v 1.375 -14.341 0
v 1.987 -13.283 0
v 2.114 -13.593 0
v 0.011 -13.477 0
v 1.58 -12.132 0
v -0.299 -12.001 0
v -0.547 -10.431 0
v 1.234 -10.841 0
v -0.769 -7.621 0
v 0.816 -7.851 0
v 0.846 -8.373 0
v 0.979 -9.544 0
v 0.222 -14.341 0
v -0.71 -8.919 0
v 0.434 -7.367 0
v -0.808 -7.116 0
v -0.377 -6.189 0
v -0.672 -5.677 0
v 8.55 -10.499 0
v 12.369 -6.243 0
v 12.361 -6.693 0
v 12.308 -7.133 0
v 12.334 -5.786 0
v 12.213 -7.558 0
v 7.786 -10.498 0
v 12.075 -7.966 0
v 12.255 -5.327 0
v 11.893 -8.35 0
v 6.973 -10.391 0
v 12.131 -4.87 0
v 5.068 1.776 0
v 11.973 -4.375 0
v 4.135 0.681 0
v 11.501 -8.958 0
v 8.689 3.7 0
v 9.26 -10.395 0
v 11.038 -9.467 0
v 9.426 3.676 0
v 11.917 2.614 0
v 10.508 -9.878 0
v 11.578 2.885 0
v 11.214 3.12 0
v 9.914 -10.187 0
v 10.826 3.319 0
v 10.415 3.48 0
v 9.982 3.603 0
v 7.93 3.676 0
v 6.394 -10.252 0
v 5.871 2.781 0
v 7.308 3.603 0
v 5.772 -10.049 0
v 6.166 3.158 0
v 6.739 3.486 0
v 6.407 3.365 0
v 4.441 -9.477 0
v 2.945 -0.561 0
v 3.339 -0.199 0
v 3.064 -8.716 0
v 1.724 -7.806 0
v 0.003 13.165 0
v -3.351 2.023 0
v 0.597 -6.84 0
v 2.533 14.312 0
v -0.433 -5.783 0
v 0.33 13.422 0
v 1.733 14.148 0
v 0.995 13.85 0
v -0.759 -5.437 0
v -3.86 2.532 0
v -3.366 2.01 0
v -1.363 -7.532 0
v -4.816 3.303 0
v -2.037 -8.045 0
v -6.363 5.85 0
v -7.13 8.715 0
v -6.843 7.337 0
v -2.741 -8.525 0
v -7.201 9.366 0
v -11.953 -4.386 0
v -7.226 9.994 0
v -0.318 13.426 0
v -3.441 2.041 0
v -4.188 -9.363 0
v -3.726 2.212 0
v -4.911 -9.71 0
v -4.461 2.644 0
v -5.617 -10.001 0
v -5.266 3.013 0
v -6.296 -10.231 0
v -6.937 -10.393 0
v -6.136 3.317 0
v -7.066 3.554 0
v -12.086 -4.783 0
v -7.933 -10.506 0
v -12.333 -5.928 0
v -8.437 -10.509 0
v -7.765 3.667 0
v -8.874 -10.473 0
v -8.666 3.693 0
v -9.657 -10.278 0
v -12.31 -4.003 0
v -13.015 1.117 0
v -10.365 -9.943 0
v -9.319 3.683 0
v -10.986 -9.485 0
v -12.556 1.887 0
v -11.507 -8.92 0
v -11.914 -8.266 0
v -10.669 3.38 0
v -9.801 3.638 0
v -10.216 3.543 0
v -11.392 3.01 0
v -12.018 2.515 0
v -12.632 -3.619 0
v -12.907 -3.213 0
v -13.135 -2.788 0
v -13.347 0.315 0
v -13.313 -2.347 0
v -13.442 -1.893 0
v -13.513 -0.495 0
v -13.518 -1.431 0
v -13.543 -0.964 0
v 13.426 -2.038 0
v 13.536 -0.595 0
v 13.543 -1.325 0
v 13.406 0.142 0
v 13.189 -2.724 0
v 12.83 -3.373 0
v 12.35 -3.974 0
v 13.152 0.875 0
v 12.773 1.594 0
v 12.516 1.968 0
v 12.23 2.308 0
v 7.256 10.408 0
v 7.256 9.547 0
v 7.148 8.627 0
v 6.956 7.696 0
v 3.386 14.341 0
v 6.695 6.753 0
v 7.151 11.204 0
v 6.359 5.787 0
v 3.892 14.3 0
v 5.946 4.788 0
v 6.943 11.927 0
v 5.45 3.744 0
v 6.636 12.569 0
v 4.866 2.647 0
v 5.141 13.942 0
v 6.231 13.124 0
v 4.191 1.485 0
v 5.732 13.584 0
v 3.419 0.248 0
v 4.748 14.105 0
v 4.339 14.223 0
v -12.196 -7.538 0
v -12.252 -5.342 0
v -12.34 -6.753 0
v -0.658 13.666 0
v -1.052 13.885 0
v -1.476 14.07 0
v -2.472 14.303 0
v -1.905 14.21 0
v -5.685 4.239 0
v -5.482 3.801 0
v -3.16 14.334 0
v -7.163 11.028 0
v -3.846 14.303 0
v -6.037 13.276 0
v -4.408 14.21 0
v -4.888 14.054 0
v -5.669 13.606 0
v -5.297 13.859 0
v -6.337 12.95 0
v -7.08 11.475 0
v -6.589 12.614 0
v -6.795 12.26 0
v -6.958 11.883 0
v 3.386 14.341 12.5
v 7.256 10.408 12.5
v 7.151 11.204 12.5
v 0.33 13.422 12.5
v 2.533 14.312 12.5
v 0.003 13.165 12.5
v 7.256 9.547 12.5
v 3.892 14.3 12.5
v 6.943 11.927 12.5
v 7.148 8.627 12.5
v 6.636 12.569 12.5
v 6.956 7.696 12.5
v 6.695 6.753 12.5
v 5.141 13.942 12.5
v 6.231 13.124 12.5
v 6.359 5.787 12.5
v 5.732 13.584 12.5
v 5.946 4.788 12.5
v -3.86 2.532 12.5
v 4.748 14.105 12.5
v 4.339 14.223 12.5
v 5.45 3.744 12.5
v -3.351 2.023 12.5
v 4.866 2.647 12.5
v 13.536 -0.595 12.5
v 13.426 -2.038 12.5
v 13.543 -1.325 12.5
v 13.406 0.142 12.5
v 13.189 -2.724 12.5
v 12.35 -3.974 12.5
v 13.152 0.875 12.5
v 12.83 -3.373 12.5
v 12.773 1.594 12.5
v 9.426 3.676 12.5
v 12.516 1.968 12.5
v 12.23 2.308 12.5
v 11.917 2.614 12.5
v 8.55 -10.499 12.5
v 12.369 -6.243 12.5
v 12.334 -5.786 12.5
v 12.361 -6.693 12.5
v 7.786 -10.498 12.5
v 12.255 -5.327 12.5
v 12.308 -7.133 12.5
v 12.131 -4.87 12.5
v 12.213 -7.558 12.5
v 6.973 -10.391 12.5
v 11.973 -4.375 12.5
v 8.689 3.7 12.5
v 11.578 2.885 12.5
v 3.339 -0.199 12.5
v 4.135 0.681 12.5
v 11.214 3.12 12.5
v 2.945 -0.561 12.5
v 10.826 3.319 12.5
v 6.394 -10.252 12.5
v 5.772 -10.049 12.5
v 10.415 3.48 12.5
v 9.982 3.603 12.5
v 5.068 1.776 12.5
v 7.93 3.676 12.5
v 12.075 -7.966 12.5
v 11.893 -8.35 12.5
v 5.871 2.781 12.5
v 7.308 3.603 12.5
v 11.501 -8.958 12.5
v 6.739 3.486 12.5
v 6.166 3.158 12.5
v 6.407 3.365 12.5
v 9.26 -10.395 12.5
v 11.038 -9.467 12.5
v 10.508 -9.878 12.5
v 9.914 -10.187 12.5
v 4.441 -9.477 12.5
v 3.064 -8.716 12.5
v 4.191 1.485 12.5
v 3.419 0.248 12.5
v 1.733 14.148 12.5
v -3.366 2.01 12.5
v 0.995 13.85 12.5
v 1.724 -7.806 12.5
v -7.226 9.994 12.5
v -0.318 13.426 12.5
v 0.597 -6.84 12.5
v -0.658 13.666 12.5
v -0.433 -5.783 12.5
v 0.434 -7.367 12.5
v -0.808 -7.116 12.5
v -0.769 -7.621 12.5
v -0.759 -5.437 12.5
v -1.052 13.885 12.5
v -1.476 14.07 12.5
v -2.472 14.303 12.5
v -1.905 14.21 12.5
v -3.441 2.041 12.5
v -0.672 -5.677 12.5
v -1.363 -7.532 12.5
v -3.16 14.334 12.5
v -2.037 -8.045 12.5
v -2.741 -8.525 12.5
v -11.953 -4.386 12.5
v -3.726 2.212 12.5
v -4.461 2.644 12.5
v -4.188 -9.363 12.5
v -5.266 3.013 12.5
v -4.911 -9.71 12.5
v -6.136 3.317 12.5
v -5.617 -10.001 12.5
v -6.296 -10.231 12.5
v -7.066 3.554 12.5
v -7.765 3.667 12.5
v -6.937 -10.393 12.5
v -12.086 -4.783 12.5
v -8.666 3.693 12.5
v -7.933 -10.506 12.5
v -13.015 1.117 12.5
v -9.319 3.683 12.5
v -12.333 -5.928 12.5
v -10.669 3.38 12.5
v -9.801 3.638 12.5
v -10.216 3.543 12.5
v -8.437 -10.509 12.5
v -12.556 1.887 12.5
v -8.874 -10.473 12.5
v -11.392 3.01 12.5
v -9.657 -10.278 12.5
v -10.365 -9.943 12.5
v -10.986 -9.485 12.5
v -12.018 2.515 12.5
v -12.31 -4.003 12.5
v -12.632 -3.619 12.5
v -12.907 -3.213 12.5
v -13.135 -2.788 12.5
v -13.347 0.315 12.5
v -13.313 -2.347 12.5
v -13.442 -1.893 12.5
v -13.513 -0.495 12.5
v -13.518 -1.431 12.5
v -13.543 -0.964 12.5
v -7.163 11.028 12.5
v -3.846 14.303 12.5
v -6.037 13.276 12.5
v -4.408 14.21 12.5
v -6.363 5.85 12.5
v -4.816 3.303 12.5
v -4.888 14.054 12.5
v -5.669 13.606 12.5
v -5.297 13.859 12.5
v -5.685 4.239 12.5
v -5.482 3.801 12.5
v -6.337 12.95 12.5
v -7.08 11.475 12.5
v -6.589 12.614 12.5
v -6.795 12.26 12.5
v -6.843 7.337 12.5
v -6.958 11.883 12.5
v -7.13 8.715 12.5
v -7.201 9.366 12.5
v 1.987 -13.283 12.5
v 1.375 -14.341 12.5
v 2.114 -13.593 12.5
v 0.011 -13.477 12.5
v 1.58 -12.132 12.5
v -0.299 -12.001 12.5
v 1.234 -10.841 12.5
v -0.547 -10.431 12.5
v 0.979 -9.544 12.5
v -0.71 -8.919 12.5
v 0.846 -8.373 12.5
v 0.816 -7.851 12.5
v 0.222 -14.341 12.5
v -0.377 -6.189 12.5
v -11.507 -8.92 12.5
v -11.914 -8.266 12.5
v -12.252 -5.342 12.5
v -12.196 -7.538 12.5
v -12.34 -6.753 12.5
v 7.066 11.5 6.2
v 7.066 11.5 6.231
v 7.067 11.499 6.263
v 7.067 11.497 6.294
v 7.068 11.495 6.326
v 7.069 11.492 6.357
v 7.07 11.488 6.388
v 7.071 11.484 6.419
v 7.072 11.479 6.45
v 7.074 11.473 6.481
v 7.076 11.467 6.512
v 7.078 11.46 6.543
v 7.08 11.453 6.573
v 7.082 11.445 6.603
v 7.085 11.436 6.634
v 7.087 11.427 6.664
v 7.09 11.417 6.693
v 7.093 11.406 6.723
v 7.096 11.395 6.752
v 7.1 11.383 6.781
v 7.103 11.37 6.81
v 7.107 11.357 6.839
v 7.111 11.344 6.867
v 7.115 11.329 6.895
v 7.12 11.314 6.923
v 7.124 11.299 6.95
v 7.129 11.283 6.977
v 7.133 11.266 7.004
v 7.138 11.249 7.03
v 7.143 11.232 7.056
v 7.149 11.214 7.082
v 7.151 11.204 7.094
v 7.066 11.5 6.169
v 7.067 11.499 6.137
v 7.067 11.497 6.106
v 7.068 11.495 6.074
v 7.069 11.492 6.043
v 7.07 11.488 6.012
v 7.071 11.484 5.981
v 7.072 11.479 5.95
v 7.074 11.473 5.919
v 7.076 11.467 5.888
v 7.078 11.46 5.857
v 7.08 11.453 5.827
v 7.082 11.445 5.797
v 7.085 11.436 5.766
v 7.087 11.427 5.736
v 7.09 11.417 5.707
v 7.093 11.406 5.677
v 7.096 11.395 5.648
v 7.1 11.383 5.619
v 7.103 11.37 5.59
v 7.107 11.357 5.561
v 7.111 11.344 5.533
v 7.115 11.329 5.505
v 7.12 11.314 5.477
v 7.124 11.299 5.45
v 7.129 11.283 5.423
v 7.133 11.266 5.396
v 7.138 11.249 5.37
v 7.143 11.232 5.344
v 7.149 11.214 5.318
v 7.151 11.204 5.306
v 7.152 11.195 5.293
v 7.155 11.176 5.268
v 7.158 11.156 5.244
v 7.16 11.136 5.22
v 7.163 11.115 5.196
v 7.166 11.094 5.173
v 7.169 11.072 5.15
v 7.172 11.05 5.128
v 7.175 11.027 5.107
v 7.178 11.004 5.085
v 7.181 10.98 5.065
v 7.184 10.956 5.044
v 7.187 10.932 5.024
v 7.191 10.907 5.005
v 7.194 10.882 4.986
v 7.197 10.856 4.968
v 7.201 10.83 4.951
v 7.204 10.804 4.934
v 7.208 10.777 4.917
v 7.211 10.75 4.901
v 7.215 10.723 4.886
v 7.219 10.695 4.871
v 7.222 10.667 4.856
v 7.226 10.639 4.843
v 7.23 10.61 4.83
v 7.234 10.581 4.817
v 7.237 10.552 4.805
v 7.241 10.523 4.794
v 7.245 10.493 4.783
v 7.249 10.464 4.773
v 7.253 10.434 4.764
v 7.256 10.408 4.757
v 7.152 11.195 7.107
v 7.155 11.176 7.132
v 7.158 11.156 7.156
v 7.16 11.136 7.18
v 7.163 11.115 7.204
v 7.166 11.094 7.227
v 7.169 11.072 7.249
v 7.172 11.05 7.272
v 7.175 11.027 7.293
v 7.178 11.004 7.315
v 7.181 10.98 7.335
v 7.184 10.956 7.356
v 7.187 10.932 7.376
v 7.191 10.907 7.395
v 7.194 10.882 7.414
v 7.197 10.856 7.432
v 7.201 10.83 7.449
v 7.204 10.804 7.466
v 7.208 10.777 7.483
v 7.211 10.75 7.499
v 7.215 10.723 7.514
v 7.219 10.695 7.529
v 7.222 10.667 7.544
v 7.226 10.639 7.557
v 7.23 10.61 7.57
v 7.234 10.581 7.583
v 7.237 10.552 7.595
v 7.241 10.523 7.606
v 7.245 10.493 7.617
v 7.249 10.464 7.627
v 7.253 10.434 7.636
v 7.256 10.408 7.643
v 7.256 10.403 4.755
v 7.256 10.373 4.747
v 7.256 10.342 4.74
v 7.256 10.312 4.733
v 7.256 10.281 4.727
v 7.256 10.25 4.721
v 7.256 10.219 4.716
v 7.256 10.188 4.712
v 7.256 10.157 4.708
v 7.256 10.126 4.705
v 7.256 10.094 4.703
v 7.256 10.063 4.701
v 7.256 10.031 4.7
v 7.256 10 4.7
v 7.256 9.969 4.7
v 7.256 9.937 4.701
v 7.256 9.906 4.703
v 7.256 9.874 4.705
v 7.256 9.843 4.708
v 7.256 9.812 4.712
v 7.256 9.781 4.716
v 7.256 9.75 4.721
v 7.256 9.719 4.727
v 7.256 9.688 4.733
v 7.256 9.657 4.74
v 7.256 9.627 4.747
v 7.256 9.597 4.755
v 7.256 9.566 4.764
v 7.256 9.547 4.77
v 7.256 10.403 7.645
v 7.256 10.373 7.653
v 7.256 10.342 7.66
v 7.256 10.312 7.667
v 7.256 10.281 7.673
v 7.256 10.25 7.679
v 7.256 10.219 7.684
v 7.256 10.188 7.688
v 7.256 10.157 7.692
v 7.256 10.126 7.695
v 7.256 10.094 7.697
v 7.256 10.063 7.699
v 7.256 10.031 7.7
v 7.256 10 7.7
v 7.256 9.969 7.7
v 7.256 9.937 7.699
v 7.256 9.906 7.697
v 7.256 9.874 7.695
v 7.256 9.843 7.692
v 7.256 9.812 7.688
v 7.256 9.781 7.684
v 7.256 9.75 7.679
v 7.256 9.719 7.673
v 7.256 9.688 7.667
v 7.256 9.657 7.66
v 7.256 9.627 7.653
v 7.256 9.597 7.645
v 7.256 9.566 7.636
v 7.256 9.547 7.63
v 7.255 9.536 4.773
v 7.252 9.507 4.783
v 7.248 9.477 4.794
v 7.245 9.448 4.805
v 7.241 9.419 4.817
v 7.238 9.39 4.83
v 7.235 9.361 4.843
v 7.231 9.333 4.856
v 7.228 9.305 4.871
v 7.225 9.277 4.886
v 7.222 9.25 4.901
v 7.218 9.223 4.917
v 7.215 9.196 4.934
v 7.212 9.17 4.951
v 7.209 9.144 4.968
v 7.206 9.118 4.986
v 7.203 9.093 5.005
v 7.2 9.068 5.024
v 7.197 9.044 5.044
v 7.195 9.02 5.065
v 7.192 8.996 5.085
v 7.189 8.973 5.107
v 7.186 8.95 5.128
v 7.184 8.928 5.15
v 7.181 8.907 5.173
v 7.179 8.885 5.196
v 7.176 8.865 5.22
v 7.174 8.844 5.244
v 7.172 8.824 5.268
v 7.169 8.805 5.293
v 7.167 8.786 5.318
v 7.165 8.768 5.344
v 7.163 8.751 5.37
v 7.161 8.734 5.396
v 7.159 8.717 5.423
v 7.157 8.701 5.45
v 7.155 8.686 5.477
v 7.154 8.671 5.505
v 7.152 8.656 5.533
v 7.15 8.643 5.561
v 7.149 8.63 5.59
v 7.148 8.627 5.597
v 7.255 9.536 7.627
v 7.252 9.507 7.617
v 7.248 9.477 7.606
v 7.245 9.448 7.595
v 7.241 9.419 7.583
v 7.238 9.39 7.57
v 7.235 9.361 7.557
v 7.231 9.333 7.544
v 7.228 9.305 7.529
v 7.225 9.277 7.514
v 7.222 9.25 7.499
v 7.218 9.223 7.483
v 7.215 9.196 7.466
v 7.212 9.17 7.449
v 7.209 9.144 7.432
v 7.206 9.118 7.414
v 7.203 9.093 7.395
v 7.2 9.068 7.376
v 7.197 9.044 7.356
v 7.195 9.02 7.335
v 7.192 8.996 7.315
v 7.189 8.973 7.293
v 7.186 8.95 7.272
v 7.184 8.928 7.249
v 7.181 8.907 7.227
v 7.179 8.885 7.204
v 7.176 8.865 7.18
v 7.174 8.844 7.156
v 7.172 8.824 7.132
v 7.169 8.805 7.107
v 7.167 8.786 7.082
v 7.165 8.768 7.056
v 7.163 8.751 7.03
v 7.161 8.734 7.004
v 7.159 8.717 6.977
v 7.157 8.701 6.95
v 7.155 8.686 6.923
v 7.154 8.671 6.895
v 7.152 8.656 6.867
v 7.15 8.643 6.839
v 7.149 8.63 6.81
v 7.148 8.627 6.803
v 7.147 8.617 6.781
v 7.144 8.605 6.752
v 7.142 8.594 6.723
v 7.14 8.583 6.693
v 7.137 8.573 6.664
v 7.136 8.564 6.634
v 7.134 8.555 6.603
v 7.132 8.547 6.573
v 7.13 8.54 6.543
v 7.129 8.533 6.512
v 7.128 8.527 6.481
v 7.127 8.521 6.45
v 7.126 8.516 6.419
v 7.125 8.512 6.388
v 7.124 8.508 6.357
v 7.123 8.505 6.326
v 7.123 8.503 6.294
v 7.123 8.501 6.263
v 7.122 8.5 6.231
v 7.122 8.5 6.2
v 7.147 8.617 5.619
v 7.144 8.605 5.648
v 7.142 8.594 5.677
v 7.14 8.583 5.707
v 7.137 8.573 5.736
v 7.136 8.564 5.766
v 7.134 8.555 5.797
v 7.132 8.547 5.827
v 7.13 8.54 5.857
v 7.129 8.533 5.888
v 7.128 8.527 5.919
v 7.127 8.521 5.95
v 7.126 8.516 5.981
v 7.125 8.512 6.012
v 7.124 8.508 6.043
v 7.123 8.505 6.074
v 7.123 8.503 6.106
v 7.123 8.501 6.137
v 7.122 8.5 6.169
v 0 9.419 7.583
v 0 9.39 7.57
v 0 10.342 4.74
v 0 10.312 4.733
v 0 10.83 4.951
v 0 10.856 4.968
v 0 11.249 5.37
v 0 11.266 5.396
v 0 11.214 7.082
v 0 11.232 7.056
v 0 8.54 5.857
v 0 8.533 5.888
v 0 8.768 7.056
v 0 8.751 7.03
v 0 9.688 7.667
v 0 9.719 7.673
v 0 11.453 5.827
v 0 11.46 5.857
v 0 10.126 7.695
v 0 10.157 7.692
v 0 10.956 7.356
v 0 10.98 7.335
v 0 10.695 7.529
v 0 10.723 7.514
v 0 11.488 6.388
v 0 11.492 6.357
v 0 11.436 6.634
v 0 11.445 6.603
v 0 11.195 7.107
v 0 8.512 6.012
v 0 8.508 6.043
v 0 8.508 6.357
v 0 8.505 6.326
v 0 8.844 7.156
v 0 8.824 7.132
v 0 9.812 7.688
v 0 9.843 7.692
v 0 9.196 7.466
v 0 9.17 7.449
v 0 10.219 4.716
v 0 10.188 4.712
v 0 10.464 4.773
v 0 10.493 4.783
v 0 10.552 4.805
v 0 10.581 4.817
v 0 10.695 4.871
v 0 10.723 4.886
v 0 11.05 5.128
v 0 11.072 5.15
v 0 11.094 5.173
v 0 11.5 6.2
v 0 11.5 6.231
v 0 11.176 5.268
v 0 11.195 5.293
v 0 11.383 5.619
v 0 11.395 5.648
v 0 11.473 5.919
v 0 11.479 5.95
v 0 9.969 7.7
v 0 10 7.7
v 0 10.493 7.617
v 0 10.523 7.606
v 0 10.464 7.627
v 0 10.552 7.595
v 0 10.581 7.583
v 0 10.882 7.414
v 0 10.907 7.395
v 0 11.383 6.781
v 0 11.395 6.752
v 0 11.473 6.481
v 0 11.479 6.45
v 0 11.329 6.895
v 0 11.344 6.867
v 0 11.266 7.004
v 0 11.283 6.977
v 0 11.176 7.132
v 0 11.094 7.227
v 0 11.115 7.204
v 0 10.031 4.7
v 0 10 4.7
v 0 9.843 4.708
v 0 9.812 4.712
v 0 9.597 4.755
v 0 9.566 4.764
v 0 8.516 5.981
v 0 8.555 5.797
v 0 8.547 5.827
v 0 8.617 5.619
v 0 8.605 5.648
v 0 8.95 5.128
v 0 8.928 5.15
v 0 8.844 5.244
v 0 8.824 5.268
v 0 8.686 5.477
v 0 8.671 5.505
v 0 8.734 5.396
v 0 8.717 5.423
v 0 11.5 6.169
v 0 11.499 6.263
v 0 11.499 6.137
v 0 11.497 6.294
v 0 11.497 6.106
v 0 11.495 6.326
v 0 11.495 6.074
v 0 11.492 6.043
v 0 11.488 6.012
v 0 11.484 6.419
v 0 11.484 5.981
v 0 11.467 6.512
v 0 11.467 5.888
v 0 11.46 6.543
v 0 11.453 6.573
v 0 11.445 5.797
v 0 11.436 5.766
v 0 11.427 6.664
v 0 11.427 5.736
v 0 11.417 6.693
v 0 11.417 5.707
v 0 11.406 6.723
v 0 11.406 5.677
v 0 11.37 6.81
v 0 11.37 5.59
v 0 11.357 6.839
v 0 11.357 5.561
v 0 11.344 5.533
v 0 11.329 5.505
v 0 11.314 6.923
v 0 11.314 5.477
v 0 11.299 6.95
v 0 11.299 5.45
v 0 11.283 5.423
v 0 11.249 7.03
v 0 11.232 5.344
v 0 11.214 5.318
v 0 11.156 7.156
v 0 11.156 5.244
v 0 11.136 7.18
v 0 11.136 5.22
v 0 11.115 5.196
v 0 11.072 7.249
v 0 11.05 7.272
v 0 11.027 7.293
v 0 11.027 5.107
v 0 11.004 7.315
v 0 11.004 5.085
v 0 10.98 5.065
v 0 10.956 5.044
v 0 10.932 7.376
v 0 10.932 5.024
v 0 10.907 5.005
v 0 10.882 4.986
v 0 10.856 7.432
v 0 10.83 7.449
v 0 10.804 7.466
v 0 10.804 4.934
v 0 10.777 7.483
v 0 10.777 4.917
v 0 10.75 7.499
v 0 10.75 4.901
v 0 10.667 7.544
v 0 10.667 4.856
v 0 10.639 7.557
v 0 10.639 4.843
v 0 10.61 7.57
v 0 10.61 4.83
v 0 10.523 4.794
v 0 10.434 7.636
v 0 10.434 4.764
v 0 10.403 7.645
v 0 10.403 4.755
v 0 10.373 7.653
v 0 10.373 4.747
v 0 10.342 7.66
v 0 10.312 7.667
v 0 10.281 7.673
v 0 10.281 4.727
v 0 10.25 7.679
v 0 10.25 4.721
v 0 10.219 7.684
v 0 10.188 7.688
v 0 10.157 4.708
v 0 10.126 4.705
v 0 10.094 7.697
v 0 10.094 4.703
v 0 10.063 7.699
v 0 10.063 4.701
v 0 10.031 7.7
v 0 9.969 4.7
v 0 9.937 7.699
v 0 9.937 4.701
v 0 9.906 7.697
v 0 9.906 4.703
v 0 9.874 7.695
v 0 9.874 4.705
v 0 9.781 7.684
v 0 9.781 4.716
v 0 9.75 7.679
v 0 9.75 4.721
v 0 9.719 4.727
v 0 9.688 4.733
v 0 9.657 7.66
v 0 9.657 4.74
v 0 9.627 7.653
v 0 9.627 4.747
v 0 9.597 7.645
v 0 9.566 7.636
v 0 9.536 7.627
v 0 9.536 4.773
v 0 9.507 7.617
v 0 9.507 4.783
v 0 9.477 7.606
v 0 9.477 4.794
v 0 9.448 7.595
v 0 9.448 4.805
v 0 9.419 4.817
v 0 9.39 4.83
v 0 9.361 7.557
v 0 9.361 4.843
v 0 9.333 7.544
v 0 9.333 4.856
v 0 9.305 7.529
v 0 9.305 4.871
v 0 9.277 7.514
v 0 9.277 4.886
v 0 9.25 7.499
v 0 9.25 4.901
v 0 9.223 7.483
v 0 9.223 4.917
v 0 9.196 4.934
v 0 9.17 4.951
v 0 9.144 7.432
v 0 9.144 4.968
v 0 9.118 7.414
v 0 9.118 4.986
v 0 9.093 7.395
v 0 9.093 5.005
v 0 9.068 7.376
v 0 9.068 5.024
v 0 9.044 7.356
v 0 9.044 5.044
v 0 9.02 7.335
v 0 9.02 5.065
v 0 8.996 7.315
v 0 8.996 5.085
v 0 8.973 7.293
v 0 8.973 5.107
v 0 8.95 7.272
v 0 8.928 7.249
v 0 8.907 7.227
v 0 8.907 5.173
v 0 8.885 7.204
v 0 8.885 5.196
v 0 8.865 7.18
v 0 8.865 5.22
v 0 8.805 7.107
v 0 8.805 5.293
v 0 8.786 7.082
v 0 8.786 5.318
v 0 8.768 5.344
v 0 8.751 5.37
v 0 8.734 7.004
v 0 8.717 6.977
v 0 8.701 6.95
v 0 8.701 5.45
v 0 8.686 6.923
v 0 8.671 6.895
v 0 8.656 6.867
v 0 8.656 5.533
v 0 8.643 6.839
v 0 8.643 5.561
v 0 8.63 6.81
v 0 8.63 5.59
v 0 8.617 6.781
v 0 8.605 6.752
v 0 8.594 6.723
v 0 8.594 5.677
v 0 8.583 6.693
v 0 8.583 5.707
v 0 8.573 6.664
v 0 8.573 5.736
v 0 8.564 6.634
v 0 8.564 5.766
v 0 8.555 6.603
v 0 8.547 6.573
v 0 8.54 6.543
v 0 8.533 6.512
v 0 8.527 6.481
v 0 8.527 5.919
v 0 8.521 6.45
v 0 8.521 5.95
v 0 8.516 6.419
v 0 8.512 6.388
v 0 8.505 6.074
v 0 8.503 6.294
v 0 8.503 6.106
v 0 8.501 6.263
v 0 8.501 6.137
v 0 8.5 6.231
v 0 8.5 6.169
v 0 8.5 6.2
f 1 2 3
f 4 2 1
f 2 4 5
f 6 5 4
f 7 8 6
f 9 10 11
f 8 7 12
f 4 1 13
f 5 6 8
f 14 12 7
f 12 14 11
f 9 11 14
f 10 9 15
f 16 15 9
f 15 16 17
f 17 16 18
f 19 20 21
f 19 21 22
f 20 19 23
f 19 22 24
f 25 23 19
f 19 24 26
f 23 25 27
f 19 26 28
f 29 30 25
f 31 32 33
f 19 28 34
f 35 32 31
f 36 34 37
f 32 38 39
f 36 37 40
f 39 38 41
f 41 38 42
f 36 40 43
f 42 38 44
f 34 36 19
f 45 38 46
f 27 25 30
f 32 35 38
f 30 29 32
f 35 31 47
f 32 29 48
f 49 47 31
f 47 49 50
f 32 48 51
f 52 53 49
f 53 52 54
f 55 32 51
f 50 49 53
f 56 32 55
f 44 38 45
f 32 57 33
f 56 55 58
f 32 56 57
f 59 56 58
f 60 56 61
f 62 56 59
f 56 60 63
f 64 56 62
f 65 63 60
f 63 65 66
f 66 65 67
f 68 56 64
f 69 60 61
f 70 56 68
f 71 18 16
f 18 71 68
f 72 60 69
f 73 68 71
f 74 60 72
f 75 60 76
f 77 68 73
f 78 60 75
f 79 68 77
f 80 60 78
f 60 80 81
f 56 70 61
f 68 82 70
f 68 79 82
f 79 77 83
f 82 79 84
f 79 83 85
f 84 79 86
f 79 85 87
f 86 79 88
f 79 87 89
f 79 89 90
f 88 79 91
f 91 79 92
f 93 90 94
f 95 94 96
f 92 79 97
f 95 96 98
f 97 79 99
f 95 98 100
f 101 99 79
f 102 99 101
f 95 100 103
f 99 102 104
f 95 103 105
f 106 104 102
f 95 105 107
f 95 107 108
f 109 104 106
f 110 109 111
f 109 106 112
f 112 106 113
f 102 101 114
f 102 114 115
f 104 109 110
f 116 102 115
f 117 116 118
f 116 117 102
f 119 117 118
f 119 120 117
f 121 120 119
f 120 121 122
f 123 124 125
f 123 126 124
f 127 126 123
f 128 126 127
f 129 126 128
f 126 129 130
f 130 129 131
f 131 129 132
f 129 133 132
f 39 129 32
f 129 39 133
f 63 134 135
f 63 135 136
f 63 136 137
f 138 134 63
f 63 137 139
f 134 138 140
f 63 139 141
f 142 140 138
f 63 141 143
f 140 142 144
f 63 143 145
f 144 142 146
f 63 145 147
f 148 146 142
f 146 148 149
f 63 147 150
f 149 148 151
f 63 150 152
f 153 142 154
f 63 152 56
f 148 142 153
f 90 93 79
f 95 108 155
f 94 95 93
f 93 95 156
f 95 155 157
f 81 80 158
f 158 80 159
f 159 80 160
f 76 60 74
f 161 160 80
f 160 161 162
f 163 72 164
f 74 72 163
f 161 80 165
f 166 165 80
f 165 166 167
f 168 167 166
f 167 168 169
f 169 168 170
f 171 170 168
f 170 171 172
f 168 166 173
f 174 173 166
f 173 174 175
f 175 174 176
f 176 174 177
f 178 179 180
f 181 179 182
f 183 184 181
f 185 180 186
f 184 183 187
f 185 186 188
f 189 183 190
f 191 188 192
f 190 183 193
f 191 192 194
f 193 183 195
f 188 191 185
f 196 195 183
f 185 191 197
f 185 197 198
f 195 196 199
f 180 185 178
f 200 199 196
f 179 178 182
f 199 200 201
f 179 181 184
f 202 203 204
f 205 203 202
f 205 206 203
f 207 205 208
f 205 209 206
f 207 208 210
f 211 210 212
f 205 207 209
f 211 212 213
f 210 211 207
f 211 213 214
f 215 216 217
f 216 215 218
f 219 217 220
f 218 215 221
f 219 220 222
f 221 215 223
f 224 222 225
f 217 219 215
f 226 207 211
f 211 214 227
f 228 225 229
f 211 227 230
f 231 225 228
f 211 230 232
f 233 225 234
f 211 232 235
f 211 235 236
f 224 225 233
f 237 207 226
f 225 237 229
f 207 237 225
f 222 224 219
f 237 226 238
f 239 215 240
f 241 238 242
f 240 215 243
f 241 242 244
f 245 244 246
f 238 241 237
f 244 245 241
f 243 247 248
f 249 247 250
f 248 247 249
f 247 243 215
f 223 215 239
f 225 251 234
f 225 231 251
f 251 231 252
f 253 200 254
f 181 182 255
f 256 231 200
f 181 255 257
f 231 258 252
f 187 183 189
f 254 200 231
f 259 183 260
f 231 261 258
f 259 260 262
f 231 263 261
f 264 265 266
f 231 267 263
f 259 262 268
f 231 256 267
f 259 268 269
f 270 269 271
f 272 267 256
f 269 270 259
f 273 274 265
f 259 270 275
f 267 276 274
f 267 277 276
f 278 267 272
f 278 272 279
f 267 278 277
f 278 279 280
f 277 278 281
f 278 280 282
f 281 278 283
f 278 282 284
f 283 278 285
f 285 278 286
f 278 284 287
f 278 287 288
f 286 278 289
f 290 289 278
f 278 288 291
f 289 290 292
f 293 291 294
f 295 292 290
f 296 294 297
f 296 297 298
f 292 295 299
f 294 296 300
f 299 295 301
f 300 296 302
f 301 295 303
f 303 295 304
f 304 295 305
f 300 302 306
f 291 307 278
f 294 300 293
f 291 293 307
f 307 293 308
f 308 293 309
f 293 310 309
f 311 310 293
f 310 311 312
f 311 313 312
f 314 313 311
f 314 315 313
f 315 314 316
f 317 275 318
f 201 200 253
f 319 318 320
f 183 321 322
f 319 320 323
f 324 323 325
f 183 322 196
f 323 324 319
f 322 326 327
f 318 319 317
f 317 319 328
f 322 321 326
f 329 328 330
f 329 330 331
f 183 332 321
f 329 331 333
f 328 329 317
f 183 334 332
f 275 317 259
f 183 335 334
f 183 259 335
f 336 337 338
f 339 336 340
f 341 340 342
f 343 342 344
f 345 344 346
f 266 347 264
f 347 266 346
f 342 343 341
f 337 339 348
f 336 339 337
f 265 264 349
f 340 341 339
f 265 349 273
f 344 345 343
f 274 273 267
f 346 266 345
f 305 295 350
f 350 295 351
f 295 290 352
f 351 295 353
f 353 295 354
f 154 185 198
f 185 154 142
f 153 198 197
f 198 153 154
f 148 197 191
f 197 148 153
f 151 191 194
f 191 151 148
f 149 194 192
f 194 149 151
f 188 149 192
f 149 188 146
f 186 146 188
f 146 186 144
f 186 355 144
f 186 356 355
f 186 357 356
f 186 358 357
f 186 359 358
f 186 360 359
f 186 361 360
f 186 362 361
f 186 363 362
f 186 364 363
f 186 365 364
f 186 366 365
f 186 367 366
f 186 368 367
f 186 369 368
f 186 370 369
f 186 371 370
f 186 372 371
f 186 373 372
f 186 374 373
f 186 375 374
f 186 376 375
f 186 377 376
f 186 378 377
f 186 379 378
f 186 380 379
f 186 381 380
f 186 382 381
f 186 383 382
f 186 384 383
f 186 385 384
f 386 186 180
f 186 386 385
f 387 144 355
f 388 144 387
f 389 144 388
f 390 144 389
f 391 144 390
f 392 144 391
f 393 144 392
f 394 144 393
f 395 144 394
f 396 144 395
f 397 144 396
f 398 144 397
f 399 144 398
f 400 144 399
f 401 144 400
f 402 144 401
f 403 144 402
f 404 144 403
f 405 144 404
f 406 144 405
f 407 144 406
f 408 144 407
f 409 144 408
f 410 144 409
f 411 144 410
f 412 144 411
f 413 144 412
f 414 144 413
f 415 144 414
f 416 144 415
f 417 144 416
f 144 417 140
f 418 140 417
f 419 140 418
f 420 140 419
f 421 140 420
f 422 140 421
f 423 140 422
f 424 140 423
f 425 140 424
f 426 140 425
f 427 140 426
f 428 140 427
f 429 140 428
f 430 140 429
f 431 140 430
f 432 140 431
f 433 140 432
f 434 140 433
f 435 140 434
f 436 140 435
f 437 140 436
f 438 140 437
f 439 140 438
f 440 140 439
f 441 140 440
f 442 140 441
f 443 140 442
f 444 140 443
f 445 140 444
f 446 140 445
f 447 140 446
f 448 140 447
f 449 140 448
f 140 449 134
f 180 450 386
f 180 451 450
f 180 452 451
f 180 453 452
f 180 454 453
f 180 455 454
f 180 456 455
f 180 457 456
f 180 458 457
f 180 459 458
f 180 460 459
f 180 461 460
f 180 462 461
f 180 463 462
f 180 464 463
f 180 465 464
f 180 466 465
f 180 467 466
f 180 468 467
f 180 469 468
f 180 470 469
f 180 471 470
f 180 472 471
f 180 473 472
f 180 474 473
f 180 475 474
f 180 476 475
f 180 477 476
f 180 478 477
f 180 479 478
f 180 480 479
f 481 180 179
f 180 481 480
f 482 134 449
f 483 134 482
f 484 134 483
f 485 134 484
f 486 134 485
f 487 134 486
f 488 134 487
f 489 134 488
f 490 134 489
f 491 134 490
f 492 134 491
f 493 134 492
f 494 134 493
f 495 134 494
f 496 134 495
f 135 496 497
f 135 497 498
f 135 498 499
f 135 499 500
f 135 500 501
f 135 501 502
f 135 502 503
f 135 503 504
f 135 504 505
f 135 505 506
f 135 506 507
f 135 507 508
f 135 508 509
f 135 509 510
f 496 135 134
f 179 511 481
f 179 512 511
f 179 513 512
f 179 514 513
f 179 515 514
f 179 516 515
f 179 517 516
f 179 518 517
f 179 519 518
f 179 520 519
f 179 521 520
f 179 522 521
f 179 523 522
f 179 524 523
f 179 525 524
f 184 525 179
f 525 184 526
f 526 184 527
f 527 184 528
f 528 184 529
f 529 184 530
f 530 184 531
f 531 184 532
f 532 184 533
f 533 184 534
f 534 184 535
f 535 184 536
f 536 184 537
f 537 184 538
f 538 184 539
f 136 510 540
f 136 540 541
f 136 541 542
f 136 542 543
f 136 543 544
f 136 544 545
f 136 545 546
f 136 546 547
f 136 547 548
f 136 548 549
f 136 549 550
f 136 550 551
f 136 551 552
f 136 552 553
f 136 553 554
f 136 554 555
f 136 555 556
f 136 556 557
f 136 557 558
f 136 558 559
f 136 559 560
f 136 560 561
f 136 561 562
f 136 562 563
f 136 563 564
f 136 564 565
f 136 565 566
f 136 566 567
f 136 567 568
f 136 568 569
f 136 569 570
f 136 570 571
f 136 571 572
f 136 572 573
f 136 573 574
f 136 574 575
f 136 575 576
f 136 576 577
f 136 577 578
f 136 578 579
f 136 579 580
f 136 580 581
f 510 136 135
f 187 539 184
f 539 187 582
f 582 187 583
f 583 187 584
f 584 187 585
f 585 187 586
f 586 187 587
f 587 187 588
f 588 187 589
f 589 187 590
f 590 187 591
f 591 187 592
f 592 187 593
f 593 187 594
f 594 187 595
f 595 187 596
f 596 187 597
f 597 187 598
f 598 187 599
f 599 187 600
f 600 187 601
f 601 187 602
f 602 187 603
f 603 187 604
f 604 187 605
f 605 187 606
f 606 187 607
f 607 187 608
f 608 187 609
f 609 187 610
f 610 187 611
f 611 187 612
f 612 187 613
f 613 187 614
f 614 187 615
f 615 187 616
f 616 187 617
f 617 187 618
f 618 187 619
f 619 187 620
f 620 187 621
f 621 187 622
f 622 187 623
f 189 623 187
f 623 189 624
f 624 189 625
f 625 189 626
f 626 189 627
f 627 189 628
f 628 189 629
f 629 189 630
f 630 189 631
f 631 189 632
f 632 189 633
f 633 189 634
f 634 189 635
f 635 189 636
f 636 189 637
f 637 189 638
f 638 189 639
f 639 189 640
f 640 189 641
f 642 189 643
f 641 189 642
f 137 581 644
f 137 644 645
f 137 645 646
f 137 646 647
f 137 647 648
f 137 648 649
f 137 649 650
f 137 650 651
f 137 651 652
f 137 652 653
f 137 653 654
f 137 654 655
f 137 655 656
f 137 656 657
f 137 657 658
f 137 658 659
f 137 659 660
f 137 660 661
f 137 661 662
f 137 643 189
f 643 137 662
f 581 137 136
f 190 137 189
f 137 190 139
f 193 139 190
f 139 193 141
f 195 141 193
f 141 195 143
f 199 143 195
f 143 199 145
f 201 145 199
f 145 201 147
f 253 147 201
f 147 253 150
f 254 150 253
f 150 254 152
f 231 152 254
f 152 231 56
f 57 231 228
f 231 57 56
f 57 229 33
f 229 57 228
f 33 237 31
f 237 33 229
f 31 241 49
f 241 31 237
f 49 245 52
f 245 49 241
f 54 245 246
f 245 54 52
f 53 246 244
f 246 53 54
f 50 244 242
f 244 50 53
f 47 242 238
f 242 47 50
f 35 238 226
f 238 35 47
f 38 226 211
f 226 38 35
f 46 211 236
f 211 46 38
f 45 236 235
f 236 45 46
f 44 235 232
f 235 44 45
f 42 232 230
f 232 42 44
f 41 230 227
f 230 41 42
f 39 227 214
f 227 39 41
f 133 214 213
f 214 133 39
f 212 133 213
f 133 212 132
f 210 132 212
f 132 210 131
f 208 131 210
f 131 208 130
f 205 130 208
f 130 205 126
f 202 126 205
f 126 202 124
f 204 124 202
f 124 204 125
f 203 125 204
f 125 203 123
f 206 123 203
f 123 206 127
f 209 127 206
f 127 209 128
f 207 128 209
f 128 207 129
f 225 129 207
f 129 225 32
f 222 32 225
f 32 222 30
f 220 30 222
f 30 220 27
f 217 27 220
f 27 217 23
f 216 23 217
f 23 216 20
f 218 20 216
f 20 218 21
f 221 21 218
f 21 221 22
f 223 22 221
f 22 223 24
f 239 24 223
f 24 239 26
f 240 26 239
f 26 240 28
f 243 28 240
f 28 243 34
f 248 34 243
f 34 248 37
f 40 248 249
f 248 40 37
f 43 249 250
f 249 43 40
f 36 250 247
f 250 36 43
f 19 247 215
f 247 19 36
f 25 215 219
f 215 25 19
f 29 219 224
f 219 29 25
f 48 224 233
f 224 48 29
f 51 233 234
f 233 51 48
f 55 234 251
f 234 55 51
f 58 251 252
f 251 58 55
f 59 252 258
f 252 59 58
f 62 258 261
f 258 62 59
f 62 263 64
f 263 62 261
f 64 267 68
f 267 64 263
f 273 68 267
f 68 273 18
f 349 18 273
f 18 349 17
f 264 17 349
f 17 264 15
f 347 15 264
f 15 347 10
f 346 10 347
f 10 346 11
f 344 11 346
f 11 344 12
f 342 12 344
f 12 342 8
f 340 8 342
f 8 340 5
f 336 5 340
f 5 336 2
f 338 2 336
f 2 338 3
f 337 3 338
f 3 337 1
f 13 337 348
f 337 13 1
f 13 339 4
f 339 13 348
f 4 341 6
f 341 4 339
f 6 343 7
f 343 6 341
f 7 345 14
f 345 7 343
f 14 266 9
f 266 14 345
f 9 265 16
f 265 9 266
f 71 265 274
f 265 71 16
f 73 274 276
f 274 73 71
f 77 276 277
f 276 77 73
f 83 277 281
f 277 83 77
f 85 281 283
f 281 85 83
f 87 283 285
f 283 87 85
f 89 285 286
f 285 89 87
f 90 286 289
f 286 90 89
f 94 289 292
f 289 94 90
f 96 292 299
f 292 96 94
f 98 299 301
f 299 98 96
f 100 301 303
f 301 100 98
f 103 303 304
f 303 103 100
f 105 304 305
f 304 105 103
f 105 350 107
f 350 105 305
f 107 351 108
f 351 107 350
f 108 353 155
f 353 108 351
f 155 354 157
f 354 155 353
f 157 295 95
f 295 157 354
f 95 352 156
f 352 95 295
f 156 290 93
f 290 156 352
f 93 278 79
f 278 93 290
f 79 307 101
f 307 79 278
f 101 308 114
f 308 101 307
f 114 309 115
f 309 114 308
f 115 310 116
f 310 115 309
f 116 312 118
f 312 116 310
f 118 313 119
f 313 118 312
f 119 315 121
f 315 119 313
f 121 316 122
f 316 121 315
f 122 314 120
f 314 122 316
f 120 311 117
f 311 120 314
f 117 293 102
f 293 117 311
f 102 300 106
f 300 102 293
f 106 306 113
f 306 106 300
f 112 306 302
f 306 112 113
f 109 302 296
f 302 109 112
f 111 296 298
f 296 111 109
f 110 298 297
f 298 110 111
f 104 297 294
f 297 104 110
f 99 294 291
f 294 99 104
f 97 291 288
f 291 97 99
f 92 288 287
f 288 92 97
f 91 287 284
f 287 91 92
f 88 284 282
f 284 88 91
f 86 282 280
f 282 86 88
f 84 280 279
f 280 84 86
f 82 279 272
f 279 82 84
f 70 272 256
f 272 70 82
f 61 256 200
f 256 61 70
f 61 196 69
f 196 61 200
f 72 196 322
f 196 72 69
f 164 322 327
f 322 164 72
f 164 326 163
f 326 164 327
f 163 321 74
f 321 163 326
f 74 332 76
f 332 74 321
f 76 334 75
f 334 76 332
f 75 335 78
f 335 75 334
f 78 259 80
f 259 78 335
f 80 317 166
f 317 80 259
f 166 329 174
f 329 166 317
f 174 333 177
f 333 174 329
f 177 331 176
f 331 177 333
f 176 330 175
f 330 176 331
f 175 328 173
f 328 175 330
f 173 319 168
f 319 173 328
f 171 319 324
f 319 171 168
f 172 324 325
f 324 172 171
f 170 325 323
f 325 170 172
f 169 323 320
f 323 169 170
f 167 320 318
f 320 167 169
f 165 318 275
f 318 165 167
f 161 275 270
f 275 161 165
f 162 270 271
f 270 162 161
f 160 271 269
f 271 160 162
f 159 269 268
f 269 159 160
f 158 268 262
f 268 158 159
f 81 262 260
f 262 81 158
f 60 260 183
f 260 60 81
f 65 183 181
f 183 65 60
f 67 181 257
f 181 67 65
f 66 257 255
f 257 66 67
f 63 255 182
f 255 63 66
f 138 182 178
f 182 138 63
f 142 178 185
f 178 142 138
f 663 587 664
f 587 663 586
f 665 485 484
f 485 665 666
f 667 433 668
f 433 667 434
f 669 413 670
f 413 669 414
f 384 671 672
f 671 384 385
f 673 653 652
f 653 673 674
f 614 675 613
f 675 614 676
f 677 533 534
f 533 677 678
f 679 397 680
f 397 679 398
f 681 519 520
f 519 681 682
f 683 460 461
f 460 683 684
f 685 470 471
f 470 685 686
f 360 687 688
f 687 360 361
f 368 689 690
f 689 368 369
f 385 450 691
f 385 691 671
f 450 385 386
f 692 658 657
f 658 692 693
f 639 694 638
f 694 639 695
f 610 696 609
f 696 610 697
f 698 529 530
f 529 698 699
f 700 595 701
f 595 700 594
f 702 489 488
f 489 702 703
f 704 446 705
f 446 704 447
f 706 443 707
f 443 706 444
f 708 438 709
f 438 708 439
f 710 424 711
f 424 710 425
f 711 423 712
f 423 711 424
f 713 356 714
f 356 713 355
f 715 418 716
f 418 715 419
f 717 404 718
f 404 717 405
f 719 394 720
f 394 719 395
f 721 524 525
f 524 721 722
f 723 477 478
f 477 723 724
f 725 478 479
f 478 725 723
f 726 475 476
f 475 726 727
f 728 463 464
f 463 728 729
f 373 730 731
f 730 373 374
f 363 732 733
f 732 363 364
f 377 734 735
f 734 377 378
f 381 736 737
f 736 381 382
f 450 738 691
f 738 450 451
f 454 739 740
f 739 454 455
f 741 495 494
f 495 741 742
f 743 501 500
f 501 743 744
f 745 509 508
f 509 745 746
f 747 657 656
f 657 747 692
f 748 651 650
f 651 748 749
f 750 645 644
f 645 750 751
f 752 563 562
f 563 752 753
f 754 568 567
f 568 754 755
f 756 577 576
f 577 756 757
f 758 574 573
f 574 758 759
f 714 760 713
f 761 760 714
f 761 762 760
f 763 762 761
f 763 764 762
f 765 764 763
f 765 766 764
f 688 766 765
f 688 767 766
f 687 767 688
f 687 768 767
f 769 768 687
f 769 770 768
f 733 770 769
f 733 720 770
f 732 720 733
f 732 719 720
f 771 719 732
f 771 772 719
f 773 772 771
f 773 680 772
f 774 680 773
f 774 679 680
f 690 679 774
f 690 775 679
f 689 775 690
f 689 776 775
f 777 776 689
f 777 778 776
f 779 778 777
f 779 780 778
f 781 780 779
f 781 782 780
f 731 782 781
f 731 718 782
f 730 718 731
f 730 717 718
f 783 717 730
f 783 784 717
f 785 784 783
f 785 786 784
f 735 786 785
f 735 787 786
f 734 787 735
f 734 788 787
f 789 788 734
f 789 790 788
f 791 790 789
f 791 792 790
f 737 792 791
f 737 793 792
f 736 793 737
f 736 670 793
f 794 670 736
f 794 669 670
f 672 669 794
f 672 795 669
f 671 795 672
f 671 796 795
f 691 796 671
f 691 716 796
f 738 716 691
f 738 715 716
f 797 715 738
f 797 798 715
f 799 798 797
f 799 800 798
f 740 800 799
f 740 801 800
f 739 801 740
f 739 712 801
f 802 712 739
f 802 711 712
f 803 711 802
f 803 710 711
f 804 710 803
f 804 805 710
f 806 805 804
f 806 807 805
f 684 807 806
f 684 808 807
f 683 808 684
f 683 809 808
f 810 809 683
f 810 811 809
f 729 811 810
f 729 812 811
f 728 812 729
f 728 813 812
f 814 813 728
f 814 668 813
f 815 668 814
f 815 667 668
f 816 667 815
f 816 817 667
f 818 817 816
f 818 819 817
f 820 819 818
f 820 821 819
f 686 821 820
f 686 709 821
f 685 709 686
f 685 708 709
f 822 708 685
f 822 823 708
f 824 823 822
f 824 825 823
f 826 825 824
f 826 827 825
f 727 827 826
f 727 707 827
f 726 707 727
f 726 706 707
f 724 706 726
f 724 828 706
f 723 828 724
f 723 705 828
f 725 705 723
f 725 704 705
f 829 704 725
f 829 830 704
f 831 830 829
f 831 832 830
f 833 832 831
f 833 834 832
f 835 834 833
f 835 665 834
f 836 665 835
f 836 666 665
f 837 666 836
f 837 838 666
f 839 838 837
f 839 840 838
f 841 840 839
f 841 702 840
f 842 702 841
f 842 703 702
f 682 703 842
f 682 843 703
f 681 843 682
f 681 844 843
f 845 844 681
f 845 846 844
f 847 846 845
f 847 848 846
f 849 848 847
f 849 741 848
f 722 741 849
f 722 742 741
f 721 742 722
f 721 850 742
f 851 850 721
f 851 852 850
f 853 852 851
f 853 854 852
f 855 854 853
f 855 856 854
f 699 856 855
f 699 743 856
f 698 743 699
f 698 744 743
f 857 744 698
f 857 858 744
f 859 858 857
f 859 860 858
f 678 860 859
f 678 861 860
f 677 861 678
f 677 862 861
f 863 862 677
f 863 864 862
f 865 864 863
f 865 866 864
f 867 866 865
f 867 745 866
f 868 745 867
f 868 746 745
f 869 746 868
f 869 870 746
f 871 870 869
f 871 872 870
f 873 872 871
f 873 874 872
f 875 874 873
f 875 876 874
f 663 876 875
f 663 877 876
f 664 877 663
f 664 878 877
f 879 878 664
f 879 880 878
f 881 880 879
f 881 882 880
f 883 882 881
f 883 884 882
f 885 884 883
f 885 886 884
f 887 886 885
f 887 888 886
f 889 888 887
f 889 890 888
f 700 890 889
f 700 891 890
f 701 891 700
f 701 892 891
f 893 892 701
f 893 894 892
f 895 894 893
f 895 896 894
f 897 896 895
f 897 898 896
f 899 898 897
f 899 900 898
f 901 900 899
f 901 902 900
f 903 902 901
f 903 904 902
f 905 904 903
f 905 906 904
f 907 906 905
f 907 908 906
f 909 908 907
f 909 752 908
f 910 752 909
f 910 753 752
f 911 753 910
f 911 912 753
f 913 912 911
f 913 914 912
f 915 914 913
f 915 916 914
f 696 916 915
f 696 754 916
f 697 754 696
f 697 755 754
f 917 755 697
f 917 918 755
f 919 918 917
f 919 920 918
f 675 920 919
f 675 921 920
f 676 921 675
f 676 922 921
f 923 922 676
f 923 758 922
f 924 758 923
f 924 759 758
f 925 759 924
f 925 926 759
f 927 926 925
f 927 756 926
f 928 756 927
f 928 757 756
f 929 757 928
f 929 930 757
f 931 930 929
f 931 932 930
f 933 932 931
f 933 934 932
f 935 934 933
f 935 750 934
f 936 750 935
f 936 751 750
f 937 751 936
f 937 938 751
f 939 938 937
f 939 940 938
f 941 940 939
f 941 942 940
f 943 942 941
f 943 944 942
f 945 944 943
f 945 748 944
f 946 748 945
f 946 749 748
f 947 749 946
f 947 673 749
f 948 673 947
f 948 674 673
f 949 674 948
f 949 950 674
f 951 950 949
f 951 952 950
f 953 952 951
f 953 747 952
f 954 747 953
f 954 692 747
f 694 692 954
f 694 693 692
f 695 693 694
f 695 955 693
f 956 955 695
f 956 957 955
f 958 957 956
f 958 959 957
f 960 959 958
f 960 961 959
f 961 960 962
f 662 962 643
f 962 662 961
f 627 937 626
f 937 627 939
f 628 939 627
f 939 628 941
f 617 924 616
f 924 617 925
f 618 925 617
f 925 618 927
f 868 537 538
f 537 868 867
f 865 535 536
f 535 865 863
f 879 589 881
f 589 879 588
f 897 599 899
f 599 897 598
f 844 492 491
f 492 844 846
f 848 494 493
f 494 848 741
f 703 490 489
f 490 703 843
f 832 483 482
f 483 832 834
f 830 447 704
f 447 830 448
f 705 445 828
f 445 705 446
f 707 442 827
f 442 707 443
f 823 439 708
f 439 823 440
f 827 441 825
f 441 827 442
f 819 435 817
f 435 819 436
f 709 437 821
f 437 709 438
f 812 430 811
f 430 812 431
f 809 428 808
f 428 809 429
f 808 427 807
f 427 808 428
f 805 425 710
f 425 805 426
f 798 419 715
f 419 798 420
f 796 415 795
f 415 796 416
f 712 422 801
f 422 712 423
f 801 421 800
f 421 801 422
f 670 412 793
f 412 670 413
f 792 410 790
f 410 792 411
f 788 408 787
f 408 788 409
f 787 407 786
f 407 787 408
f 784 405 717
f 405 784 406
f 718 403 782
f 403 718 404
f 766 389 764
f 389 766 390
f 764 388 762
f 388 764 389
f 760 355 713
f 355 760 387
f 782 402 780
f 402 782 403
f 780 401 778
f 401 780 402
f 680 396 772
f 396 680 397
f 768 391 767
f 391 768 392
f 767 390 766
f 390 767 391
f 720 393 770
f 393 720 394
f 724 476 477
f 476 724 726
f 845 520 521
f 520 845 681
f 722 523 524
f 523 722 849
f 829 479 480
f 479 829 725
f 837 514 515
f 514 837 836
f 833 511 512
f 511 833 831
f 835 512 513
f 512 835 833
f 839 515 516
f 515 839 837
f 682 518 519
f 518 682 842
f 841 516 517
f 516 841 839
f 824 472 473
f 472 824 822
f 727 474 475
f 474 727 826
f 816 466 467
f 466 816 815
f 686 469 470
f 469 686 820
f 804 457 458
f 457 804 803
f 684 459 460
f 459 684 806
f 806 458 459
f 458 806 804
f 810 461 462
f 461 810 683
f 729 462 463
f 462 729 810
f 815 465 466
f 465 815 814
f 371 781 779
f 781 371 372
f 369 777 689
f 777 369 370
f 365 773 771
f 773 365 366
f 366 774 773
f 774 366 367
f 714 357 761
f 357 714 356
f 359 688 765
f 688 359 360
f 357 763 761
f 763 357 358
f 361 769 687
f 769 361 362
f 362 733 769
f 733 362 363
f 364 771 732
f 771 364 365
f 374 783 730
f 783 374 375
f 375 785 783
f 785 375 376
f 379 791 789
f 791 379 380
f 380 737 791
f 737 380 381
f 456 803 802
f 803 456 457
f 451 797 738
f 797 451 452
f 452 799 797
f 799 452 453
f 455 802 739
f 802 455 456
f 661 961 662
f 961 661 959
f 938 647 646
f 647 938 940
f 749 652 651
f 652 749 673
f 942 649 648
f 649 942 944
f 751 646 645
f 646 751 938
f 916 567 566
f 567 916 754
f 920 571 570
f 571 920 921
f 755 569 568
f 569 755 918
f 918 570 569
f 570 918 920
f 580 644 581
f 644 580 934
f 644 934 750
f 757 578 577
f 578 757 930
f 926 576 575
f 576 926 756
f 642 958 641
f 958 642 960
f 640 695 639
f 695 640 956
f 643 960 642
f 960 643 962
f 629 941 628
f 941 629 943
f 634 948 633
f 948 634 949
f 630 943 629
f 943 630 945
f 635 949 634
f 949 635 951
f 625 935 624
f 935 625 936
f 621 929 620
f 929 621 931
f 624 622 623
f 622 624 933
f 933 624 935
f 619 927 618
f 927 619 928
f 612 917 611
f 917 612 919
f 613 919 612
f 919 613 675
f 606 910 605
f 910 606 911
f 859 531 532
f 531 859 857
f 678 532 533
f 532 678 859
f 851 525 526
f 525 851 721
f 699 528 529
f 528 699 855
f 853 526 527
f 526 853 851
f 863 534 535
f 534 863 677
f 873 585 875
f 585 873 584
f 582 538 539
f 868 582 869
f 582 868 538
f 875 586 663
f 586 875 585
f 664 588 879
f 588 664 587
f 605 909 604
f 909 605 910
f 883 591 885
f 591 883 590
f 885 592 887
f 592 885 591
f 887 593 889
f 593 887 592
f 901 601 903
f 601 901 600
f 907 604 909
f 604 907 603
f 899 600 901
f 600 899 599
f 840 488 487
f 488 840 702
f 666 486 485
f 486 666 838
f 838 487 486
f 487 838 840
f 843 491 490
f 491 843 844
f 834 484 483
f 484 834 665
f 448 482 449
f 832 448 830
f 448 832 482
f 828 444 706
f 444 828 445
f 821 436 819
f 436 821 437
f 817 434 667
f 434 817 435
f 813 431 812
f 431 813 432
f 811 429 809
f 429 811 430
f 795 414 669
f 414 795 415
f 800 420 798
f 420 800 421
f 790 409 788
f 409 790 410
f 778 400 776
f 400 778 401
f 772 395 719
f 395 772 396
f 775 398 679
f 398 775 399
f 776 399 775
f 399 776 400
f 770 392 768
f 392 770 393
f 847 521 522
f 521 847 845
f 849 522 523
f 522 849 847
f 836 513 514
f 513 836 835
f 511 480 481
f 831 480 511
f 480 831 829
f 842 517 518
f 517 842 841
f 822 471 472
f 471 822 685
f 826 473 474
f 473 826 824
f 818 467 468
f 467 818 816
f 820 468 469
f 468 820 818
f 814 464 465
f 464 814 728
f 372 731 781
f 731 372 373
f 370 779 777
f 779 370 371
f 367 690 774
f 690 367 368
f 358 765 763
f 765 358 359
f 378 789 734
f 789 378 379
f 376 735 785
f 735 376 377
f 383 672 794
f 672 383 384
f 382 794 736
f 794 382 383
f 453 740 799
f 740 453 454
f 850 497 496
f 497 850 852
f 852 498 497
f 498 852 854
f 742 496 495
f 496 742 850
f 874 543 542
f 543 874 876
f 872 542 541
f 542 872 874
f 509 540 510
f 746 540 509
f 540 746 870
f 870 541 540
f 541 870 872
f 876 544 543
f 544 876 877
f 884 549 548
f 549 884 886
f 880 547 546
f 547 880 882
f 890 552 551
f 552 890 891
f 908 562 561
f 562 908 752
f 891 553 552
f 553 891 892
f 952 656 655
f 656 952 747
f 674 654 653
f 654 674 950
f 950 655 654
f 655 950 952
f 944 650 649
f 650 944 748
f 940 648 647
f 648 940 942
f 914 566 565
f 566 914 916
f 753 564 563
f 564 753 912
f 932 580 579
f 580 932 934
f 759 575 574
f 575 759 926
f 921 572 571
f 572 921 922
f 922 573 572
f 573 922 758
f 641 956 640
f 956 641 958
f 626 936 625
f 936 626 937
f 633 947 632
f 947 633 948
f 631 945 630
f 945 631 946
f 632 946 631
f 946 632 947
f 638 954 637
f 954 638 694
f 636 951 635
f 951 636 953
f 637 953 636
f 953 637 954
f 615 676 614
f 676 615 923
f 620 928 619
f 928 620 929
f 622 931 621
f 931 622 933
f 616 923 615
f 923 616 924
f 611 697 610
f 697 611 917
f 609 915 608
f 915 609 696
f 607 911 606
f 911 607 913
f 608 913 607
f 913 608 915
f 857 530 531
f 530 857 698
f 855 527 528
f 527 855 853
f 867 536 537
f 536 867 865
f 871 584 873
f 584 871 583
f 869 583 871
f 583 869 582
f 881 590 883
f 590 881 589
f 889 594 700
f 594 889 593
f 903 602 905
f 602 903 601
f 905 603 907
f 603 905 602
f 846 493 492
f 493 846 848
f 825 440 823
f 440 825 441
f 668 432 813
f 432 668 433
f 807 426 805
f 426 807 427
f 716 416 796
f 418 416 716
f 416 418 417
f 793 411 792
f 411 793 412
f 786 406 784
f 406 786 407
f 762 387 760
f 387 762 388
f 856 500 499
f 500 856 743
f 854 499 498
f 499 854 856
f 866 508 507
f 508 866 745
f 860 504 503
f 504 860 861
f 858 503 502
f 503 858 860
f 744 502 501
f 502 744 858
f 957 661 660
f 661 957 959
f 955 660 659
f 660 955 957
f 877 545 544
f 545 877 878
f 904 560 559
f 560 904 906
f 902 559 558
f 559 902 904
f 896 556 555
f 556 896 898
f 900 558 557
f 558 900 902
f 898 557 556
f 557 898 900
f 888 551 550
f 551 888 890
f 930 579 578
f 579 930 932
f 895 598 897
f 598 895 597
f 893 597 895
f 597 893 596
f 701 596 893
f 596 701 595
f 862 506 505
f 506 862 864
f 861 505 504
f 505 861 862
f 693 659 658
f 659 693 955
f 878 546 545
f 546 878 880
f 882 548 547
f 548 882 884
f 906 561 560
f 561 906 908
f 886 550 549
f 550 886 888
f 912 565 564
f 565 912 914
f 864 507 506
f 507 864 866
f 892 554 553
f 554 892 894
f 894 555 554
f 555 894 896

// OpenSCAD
// Module names are of the form poly_<inkscape-path-id>().
// As a result you can associate a polygon in this OpenSCAD program with the
//  corresponding SVG element in the Inkscape document by looking for 
//  the XML element with the attribute id="inkscape-path-id".

// Paths have their own variables so they can be imported and used 
//  in polygon(points) structures in other programs.
// The NN_points is the list of all polygon XY vertices. 
// There may be an NN_paths variable as well. If it exists then it 
//  defines the nested paths. Both must be used in the 
//  polygon(points, paths) variant of the command.

profile_scale = 25.4/90; //made in inkscape in mm

// helper functions to determine the X,Y dimensions of the profiles
function min_x(shape_points) = min([ for (x = shape_points) min(x[0])]);
function max_x(shape_points) = max([ for (x = shape_points) max(x[0])]);
function min_y(shape_points) = min([ for (x = shape_points) min(x[1])]);
function max_y(shape_points) = max([ for (x = shape_points) max(x[1])]);

height = 5;
width = 1.0;


path3748_0_points = [[0.077872,95.503570],[-2.122076,85.049308],[-3.873795,73.919759],[-5.031635,63.208250],[-5.449948,54.008110],[-5.724268,50.431320],[-9.656184,53.377010],[-14.437322,57.011760],[-19.421141,60.413117],[-29.680960,66.353541],[-34.799027,68.811553],[-39.803911,70.874061],[-44.616645,72.500536],[-49.158263,73.650450],[-56.220931,74.455018],[-59.790633,74.474729],[-62.884265,74.218630],[-68.434658,72.837341],[-73.454553,70.464186],[-77.854039,67.217291],[-81.543207,63.214781],[-84.432147,58.574784],[-86.430948,53.415424],[-87.449700,47.854828],[-87.398494,42.011120],[-86.823148,37.857356],[-85.650612,33.894190],[-84.708009,31.080750],[-87.232812,28.366280],[-89.515706,25.648534],[-91.467909,22.770045],[-93.080933,19.755555],[-94.346291,16.629805],[-95.255495,13.417535],[-95.800054,10.143485],[-95.971483,6.832397],[-95.761291,3.509010],[-94.583483,-2.234581],[-92.233186,-7.915150],[-88.983095,-13.371513],[-85.168486,-17.824042],[-80.728933,-21.331010],[-75.604009,-23.950688],[-72.400324,-25.106059],[-69.458433,-25.784388],[-66.041134,-26.101019],[-61.411223,-26.171298],[-55.026728,-25.987217],[-50.072660,-25.184653],[-43.482440,-23.504344],[-37.318628,-21.350890],[-31.615068,-18.737875],[-26.405606,-15.678882],[-24.386596,-14.464297],[-23.851197,-14.241871],[-23.748002,-14.334757],[-27.354107,-17.943350],[-34.127160,-23.405029],[-38.847101,-26.934642],[-40.288737,-30.043616],[-45.089037,-41.454261],[-48.493116,-51.995923],[-50.524642,-61.756987],[-51.033094,-66.372417],[-51.207282,-70.825842],[-50.763032,-78.153720],[-50.169859,-81.316552],[-49.305603,-84.210791],[-48.152475,-86.885547],[-46.692688,-89.389927],[-44.908451,-91.773041],[-42.781977,-94.083997],[-40.175272,-96.422590],[-37.540768,-98.213421],[-34.640380,-99.592869],[-31.236023,-100.697313],[-27.253236,-101.358691],[-22.390205,-101.579499],[-17.515244,-101.359665],[-13.496664,-100.699113],[-10.458586,-99.708958],[-7.457506,-98.396132],[-4.665861,-96.845862],[-2.256088,-95.143377],[0.023362,-93.297570],[2.340462,-95.118450],[7.053441,-98.147797],[12.282505,-100.257636],[17.953865,-101.425777],[23.993732,-101.630030],[27.577879,-101.337403],[30.747863,-100.790524],[33.649746,-99.956161],[36.429592,-98.801078],[40.617536,-96.263010],[44.155599,-93.002901],[47.024530,-89.071714],[49.205077,-84.520412],[50.677989,-79.399956],[51.424016,-73.761311],[51.423907,-67.655439],[50.658412,-61.133302],[49.294627,-54.542032],[47.441512,-47.859419],[45.066578,-41.012479],[42.137335,-33.928226],[38.621294,-26.533676],[34.485964,-18.755845],[29.698857,-10.521748],[24.227482,-1.758400],[20.868462,3.972080],[23.659278,1.413635],[29.305383,-4.823834],[35.917872,-12.583528],[41.607842,-19.708650],[43.694423,-22.378479],[45.402837,-23.847528],[47.759671,-24.702719],[51.791512,-25.530973],[56.198358,-26.046945],[61.575432,-26.219391],[66.798103,-26.048179],[70.741742,-25.533173],[73.809744,-24.659685],[76.721652,-23.517074],[79.470395,-22.110430],[82.048902,-20.444844],[84.450101,-18.525406],[86.666921,-16.357207],[88.692292,-13.945336],[90.519142,-11.294884],[93.204853,-6.199010],[95.005130,-1.004507],[95.925498,4.215877],[95.971483,9.389391],[95.148610,14.443286],[93.462405,19.304812],[90.918393,23.901220],[87.522102,28.159760],[84.847892,31.005290],[85.970702,34.510540],[86.846450,37.752052],[87.407889,41.004717],[87.656947,44.240345],[87.595553,47.430741],[87.225633,50.547715],[86.549116,53.563075],[85.567930,56.448627],[84.284002,59.176180],[81.500497,63.480330],[78.218854,67.091123],[74.463109,69.998590],[70.257297,72.192764],[65.625452,73.663677],[60.591611,74.401361],[55.179809,74.395848],[49.414082,73.637170],[45.309328,72.649029],[40.901110,71.216193],[31.469694,67.161921],[21.710667,61.765317],[12.214862,55.317340],[4.233233,48.472864],[-3.069548,40.978580],[-5.380138,38.527580],[-4.762967,40.233446],[-2.669768,43.856439],[3.073392,52.207340],[5.783672,55.636990],[5.996212,59.339660],[6.935081,67.634341],[8.741514,76.826501],[11.196431,85.973311],[14.080752,94.131940],[14.984232,96.326500],[12.365882,98.978250],[9.747532,101.630030],[5.658952,101.630030],[1.570352,101.630030],[0.078002,95.503540],[0.077872,95.503570]];

module poly_path3748(h, w, res=4)  {
  scale([profile_scale, -profile_scale, 1])
  union()  {
    linear_extrude(height=h)
      polygon(path3748_0_points);
  }
}

difference(){
// The shapes
scale([0.5,0.5,2.5])
poly_path3748(height, width);
    translate([0,10,6.2]){
rotate([0,90,0])
    {
        cylinder($fn=300,r=1.5,h=400);}}
}
